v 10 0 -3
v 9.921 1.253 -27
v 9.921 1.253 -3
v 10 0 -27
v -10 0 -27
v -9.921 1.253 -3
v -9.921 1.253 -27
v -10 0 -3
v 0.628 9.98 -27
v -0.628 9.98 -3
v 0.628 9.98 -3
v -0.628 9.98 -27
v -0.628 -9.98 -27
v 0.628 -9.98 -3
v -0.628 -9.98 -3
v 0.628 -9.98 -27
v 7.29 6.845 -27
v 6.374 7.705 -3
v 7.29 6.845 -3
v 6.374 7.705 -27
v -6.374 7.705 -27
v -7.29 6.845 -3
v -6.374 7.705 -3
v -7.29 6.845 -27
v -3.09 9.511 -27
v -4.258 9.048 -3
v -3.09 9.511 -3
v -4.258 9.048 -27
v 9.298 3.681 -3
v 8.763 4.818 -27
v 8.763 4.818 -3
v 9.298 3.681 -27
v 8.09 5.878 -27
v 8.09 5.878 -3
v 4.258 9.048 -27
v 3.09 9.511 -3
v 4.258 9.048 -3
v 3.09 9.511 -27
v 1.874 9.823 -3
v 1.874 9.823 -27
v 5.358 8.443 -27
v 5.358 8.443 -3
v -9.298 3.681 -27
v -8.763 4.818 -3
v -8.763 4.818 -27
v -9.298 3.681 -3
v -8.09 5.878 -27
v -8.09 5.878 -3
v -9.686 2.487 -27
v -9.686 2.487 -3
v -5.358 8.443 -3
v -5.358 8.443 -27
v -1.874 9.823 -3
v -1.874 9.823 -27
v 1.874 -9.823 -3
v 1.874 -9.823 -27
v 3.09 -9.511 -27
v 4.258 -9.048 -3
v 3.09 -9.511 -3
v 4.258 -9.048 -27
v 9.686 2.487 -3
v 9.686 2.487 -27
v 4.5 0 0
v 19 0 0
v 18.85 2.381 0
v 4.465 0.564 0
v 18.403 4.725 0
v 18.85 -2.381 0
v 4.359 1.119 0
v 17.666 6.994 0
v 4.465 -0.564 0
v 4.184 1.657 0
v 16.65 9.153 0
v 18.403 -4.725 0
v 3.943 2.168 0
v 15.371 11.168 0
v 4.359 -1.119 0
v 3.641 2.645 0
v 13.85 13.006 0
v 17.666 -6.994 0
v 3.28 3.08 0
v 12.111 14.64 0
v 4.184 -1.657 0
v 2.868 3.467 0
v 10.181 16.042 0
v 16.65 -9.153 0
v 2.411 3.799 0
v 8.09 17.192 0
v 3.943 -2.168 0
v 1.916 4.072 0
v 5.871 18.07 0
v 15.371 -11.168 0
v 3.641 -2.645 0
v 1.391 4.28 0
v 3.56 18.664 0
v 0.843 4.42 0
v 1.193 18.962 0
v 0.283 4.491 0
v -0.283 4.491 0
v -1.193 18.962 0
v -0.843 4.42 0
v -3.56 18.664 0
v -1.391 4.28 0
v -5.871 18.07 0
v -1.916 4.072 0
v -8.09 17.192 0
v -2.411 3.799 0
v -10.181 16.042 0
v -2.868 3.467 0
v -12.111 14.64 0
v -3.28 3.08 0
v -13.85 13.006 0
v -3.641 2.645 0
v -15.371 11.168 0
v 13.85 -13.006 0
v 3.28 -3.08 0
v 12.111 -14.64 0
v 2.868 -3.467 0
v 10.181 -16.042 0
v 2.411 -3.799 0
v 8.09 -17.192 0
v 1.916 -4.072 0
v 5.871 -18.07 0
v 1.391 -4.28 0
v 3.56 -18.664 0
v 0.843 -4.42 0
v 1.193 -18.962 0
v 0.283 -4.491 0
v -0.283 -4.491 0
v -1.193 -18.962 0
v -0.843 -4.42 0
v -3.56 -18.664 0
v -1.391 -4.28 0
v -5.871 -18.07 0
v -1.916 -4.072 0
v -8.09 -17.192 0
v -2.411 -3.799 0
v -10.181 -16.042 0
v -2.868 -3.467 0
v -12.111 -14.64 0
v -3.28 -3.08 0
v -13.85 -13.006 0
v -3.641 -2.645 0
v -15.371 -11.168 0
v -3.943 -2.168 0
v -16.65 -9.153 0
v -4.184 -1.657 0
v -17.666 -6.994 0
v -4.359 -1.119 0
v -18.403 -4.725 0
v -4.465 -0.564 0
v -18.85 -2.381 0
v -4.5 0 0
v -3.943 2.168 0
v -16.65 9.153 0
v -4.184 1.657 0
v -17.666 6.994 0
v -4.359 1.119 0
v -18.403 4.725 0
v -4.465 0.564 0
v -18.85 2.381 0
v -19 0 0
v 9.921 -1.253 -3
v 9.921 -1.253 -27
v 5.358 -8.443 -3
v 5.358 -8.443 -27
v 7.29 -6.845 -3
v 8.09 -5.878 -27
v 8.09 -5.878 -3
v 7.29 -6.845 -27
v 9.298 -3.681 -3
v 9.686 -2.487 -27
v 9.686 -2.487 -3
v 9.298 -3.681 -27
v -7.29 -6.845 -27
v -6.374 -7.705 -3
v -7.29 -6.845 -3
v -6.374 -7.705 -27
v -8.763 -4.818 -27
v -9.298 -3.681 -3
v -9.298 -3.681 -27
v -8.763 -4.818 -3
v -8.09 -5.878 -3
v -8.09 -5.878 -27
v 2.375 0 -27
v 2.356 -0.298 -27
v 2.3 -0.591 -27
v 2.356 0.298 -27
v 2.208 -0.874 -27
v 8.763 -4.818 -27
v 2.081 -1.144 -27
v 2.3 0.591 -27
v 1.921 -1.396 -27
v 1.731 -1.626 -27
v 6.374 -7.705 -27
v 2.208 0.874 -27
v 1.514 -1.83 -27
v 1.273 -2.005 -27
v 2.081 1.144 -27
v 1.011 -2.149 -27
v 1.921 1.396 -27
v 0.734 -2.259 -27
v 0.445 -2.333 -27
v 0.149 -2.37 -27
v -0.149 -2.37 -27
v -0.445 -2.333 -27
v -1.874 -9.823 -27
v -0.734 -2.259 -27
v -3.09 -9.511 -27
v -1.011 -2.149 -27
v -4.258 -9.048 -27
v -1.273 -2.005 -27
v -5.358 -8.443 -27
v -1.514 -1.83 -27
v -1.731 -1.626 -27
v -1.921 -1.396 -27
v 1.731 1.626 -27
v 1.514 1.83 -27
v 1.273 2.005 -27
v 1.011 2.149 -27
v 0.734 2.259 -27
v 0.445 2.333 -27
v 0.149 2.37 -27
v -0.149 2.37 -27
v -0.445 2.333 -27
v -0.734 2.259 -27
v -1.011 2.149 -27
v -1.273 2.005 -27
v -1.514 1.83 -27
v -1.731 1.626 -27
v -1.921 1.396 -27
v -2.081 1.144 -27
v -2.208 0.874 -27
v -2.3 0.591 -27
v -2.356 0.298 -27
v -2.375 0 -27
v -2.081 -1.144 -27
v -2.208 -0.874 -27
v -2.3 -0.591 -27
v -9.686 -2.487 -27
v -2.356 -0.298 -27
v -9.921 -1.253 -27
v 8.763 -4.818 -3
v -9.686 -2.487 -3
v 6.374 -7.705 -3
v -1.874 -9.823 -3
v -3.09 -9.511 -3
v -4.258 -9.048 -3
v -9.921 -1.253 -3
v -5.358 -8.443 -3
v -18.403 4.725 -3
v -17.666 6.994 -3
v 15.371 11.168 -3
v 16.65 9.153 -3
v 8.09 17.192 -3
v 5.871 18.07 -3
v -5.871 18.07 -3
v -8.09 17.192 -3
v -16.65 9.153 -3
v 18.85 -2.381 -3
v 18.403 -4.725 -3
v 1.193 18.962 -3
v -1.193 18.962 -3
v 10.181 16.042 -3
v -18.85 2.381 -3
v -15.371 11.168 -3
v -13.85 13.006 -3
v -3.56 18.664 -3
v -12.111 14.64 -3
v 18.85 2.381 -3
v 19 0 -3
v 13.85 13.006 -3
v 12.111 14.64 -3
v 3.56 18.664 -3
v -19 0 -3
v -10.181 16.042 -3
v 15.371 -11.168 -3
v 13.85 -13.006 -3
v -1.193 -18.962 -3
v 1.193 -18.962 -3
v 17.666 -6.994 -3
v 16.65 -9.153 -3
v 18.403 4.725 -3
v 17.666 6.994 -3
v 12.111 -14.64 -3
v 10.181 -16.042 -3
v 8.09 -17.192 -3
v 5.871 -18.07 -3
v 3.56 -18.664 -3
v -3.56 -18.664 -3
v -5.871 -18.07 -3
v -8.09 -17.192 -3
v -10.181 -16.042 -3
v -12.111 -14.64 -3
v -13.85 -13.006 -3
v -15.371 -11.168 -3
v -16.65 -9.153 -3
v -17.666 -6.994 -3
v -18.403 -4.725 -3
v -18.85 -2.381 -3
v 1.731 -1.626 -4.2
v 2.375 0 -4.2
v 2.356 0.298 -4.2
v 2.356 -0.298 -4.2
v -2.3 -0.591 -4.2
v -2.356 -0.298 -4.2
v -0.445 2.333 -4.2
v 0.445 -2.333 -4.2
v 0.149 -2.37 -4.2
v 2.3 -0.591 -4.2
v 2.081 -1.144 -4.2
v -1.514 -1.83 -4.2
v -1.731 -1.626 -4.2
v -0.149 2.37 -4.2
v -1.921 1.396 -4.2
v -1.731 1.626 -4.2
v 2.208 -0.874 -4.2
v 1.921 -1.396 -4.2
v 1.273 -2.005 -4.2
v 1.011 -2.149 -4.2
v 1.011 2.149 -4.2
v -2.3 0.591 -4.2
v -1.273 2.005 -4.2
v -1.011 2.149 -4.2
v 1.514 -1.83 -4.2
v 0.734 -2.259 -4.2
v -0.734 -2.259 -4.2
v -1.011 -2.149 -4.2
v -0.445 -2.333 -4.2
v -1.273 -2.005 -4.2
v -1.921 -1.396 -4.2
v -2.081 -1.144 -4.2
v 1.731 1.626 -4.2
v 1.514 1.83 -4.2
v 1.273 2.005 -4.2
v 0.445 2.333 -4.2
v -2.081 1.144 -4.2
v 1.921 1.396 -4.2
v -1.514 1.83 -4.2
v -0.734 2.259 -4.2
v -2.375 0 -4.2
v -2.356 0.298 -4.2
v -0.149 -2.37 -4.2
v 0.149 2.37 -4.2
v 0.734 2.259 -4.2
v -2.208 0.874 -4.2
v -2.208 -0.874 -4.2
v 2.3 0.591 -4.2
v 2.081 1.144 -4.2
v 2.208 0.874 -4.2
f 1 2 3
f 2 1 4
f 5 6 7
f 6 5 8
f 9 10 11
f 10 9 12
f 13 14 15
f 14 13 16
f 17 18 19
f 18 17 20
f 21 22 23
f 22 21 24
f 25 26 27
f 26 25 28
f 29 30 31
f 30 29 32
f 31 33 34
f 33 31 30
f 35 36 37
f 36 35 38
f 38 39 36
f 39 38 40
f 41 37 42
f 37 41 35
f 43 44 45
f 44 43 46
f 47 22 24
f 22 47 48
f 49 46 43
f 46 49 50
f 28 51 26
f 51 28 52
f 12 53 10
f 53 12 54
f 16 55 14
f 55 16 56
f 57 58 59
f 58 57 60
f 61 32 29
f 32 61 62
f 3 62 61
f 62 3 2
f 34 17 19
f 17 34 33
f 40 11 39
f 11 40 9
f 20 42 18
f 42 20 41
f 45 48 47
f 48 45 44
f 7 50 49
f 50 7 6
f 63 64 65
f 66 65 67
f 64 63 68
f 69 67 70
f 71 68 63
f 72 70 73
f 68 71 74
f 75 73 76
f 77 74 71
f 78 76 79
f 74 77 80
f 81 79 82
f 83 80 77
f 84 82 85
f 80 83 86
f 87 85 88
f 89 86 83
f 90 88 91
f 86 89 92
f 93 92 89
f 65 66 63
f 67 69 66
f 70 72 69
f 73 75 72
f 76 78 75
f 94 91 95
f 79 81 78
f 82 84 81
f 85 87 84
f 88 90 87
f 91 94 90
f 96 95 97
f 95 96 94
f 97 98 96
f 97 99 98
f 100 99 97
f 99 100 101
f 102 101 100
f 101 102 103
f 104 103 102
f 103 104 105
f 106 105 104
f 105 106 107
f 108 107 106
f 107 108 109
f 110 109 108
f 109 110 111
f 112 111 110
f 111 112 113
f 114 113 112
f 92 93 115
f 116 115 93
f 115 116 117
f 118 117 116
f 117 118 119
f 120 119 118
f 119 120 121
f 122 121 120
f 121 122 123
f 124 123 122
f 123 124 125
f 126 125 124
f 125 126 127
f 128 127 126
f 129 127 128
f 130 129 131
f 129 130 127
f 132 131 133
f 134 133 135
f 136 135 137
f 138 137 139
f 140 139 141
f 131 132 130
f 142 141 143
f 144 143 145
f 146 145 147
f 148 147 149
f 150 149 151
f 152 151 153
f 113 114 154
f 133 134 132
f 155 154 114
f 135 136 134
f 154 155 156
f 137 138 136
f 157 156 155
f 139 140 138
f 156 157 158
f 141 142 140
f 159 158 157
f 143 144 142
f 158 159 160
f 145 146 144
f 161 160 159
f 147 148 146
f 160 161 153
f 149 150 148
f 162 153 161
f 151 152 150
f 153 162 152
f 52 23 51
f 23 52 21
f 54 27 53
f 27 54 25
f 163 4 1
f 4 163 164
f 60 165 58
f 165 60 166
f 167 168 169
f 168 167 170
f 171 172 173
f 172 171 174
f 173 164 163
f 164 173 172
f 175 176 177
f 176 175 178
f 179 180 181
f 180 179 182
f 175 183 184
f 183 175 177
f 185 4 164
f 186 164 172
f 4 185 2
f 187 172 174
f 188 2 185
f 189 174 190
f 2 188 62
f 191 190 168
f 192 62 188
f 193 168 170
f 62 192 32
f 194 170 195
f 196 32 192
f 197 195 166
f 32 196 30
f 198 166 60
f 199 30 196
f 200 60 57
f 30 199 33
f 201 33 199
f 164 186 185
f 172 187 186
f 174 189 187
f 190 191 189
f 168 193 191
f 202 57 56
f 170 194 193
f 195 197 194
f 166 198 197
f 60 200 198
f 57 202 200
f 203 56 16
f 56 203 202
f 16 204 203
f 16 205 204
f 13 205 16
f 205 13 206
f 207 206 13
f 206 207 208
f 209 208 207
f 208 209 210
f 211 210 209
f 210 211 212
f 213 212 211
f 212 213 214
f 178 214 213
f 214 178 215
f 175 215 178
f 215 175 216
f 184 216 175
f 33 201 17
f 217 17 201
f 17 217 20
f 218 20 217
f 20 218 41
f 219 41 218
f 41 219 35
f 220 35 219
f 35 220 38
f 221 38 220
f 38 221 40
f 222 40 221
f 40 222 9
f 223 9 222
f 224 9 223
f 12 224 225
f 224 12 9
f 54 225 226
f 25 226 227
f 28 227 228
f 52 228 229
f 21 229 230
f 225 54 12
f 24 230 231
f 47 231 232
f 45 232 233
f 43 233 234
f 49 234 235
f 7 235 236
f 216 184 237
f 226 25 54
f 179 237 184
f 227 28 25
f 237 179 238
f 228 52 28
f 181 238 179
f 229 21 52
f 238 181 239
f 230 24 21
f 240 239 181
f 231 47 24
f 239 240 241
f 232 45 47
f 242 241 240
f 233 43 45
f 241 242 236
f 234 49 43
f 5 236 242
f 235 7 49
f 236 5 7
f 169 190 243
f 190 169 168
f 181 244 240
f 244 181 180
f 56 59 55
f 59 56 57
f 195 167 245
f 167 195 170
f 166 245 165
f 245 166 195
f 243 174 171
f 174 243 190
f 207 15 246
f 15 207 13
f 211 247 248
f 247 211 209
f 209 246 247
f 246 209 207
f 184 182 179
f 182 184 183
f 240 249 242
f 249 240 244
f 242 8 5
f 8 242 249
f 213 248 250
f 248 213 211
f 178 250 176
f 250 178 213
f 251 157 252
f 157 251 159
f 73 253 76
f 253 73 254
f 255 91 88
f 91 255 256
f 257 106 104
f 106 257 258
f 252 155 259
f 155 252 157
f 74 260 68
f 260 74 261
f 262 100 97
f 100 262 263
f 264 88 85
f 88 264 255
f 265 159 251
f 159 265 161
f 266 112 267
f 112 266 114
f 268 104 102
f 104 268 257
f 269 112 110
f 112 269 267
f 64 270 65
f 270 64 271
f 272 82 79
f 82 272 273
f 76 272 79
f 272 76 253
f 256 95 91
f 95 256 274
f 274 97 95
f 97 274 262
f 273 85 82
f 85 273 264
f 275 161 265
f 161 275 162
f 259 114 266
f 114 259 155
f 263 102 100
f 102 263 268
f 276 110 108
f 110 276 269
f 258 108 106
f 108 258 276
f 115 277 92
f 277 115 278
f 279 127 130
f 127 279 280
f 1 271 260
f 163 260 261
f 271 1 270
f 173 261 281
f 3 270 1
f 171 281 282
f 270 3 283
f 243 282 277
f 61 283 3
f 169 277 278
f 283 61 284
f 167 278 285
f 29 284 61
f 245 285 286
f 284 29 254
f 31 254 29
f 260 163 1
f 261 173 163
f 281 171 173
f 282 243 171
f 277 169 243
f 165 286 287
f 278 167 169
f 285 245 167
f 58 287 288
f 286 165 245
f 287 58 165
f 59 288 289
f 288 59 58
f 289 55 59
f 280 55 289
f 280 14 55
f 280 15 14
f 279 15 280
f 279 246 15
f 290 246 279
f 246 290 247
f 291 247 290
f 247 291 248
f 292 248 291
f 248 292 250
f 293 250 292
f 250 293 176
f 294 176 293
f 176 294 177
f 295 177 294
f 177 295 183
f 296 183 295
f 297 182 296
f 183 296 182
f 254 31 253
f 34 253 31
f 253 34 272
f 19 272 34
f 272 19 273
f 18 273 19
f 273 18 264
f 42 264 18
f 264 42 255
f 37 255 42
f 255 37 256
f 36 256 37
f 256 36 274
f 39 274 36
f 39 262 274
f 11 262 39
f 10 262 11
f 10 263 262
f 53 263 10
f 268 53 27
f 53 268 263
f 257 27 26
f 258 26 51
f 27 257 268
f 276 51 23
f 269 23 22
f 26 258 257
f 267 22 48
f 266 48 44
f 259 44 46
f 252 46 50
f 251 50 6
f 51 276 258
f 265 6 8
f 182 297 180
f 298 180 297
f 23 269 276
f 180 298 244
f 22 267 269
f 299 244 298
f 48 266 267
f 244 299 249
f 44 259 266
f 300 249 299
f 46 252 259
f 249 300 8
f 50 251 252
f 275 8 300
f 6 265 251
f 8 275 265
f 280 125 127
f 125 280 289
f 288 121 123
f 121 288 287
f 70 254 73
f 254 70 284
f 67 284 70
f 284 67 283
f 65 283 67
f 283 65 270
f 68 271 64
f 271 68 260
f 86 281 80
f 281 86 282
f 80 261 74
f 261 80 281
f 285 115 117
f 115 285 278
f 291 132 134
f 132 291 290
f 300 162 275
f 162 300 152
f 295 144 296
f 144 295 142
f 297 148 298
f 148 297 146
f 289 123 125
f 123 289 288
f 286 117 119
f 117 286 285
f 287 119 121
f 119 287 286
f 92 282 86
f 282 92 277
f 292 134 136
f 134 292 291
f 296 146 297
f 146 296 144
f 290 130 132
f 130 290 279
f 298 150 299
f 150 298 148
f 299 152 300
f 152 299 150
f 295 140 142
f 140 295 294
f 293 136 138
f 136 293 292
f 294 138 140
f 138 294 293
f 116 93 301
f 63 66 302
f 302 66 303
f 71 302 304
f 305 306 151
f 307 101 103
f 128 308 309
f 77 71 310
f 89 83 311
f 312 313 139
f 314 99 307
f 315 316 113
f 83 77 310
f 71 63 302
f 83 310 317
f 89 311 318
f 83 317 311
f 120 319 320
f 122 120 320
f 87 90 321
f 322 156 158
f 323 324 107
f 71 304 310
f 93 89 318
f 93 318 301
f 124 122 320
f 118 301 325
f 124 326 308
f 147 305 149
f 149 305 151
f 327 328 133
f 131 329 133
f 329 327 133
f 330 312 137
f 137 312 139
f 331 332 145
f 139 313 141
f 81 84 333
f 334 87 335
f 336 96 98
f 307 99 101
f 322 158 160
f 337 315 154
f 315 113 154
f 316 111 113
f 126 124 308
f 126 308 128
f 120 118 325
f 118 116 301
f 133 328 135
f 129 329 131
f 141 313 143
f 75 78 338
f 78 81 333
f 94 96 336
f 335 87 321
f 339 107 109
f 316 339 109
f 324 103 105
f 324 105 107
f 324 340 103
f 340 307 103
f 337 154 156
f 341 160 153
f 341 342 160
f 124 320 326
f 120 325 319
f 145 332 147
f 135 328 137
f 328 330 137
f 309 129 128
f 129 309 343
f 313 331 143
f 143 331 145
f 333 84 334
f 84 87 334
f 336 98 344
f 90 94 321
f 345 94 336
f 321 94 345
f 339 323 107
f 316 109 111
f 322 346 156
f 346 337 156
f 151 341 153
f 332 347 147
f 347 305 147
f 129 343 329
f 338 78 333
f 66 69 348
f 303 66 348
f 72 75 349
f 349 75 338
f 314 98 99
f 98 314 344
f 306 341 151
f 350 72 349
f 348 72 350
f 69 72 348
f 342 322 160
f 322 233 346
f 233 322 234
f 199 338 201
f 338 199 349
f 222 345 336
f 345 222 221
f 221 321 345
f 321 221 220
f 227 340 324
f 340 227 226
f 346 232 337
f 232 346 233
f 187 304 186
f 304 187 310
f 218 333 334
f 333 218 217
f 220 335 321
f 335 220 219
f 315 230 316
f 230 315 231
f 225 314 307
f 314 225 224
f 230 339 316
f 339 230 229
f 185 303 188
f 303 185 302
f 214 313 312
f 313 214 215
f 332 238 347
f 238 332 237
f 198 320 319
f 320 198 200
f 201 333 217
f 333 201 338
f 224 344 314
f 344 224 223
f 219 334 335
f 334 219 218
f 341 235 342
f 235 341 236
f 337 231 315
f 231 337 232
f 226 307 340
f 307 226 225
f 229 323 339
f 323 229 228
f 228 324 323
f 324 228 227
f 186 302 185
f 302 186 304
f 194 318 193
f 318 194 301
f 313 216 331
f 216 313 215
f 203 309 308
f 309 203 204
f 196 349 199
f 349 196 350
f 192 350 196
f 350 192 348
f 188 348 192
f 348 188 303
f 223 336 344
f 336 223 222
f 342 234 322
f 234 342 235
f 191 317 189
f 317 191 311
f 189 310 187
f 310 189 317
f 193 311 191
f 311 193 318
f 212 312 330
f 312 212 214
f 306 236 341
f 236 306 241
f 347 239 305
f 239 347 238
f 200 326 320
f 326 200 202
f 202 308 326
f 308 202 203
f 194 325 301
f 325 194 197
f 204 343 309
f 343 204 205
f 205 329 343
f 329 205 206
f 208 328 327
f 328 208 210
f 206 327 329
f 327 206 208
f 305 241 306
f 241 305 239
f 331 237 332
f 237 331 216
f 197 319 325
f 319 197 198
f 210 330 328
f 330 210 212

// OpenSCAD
$fn = 50;


difference() {
	union() {
		translate(v = [0, 0, -27.0000000000]) {
			cylinder(h = 27, r = 10.0000000000);
		}
		translate(v = [0, 0, -3.0000000000]) {
			cylinder(h = 3, r = 19.0000000000);
		}
	}
	union() {
		translate(v = [0, 0, 0]) {
			rotate(a = [0, 0, 0]) {
				difference() {
					union() {
						#translate(v = [0, 0, -27.0000000000]) {
							cylinder(h = 27, r = 2.2500000000);
						}
						#translate(v = [0, 0, -4.2000000000]) {
							cylinder(h = 4.2000000000, r = 10.0000000000, r1 = 2.3750000000, r2 = 4.5000000000);
						}
						#translate(v = [0, 0, -27.0000000000]) {
							cylinder(h = 27, r = 2.3750000000);
						}
						#translate(v = [0, 0, -27.0000000000]) {
							cylinder(h = 27, r = 2.2500000000);
						}
					}
					union();
				}
			}
		}
	}
}
